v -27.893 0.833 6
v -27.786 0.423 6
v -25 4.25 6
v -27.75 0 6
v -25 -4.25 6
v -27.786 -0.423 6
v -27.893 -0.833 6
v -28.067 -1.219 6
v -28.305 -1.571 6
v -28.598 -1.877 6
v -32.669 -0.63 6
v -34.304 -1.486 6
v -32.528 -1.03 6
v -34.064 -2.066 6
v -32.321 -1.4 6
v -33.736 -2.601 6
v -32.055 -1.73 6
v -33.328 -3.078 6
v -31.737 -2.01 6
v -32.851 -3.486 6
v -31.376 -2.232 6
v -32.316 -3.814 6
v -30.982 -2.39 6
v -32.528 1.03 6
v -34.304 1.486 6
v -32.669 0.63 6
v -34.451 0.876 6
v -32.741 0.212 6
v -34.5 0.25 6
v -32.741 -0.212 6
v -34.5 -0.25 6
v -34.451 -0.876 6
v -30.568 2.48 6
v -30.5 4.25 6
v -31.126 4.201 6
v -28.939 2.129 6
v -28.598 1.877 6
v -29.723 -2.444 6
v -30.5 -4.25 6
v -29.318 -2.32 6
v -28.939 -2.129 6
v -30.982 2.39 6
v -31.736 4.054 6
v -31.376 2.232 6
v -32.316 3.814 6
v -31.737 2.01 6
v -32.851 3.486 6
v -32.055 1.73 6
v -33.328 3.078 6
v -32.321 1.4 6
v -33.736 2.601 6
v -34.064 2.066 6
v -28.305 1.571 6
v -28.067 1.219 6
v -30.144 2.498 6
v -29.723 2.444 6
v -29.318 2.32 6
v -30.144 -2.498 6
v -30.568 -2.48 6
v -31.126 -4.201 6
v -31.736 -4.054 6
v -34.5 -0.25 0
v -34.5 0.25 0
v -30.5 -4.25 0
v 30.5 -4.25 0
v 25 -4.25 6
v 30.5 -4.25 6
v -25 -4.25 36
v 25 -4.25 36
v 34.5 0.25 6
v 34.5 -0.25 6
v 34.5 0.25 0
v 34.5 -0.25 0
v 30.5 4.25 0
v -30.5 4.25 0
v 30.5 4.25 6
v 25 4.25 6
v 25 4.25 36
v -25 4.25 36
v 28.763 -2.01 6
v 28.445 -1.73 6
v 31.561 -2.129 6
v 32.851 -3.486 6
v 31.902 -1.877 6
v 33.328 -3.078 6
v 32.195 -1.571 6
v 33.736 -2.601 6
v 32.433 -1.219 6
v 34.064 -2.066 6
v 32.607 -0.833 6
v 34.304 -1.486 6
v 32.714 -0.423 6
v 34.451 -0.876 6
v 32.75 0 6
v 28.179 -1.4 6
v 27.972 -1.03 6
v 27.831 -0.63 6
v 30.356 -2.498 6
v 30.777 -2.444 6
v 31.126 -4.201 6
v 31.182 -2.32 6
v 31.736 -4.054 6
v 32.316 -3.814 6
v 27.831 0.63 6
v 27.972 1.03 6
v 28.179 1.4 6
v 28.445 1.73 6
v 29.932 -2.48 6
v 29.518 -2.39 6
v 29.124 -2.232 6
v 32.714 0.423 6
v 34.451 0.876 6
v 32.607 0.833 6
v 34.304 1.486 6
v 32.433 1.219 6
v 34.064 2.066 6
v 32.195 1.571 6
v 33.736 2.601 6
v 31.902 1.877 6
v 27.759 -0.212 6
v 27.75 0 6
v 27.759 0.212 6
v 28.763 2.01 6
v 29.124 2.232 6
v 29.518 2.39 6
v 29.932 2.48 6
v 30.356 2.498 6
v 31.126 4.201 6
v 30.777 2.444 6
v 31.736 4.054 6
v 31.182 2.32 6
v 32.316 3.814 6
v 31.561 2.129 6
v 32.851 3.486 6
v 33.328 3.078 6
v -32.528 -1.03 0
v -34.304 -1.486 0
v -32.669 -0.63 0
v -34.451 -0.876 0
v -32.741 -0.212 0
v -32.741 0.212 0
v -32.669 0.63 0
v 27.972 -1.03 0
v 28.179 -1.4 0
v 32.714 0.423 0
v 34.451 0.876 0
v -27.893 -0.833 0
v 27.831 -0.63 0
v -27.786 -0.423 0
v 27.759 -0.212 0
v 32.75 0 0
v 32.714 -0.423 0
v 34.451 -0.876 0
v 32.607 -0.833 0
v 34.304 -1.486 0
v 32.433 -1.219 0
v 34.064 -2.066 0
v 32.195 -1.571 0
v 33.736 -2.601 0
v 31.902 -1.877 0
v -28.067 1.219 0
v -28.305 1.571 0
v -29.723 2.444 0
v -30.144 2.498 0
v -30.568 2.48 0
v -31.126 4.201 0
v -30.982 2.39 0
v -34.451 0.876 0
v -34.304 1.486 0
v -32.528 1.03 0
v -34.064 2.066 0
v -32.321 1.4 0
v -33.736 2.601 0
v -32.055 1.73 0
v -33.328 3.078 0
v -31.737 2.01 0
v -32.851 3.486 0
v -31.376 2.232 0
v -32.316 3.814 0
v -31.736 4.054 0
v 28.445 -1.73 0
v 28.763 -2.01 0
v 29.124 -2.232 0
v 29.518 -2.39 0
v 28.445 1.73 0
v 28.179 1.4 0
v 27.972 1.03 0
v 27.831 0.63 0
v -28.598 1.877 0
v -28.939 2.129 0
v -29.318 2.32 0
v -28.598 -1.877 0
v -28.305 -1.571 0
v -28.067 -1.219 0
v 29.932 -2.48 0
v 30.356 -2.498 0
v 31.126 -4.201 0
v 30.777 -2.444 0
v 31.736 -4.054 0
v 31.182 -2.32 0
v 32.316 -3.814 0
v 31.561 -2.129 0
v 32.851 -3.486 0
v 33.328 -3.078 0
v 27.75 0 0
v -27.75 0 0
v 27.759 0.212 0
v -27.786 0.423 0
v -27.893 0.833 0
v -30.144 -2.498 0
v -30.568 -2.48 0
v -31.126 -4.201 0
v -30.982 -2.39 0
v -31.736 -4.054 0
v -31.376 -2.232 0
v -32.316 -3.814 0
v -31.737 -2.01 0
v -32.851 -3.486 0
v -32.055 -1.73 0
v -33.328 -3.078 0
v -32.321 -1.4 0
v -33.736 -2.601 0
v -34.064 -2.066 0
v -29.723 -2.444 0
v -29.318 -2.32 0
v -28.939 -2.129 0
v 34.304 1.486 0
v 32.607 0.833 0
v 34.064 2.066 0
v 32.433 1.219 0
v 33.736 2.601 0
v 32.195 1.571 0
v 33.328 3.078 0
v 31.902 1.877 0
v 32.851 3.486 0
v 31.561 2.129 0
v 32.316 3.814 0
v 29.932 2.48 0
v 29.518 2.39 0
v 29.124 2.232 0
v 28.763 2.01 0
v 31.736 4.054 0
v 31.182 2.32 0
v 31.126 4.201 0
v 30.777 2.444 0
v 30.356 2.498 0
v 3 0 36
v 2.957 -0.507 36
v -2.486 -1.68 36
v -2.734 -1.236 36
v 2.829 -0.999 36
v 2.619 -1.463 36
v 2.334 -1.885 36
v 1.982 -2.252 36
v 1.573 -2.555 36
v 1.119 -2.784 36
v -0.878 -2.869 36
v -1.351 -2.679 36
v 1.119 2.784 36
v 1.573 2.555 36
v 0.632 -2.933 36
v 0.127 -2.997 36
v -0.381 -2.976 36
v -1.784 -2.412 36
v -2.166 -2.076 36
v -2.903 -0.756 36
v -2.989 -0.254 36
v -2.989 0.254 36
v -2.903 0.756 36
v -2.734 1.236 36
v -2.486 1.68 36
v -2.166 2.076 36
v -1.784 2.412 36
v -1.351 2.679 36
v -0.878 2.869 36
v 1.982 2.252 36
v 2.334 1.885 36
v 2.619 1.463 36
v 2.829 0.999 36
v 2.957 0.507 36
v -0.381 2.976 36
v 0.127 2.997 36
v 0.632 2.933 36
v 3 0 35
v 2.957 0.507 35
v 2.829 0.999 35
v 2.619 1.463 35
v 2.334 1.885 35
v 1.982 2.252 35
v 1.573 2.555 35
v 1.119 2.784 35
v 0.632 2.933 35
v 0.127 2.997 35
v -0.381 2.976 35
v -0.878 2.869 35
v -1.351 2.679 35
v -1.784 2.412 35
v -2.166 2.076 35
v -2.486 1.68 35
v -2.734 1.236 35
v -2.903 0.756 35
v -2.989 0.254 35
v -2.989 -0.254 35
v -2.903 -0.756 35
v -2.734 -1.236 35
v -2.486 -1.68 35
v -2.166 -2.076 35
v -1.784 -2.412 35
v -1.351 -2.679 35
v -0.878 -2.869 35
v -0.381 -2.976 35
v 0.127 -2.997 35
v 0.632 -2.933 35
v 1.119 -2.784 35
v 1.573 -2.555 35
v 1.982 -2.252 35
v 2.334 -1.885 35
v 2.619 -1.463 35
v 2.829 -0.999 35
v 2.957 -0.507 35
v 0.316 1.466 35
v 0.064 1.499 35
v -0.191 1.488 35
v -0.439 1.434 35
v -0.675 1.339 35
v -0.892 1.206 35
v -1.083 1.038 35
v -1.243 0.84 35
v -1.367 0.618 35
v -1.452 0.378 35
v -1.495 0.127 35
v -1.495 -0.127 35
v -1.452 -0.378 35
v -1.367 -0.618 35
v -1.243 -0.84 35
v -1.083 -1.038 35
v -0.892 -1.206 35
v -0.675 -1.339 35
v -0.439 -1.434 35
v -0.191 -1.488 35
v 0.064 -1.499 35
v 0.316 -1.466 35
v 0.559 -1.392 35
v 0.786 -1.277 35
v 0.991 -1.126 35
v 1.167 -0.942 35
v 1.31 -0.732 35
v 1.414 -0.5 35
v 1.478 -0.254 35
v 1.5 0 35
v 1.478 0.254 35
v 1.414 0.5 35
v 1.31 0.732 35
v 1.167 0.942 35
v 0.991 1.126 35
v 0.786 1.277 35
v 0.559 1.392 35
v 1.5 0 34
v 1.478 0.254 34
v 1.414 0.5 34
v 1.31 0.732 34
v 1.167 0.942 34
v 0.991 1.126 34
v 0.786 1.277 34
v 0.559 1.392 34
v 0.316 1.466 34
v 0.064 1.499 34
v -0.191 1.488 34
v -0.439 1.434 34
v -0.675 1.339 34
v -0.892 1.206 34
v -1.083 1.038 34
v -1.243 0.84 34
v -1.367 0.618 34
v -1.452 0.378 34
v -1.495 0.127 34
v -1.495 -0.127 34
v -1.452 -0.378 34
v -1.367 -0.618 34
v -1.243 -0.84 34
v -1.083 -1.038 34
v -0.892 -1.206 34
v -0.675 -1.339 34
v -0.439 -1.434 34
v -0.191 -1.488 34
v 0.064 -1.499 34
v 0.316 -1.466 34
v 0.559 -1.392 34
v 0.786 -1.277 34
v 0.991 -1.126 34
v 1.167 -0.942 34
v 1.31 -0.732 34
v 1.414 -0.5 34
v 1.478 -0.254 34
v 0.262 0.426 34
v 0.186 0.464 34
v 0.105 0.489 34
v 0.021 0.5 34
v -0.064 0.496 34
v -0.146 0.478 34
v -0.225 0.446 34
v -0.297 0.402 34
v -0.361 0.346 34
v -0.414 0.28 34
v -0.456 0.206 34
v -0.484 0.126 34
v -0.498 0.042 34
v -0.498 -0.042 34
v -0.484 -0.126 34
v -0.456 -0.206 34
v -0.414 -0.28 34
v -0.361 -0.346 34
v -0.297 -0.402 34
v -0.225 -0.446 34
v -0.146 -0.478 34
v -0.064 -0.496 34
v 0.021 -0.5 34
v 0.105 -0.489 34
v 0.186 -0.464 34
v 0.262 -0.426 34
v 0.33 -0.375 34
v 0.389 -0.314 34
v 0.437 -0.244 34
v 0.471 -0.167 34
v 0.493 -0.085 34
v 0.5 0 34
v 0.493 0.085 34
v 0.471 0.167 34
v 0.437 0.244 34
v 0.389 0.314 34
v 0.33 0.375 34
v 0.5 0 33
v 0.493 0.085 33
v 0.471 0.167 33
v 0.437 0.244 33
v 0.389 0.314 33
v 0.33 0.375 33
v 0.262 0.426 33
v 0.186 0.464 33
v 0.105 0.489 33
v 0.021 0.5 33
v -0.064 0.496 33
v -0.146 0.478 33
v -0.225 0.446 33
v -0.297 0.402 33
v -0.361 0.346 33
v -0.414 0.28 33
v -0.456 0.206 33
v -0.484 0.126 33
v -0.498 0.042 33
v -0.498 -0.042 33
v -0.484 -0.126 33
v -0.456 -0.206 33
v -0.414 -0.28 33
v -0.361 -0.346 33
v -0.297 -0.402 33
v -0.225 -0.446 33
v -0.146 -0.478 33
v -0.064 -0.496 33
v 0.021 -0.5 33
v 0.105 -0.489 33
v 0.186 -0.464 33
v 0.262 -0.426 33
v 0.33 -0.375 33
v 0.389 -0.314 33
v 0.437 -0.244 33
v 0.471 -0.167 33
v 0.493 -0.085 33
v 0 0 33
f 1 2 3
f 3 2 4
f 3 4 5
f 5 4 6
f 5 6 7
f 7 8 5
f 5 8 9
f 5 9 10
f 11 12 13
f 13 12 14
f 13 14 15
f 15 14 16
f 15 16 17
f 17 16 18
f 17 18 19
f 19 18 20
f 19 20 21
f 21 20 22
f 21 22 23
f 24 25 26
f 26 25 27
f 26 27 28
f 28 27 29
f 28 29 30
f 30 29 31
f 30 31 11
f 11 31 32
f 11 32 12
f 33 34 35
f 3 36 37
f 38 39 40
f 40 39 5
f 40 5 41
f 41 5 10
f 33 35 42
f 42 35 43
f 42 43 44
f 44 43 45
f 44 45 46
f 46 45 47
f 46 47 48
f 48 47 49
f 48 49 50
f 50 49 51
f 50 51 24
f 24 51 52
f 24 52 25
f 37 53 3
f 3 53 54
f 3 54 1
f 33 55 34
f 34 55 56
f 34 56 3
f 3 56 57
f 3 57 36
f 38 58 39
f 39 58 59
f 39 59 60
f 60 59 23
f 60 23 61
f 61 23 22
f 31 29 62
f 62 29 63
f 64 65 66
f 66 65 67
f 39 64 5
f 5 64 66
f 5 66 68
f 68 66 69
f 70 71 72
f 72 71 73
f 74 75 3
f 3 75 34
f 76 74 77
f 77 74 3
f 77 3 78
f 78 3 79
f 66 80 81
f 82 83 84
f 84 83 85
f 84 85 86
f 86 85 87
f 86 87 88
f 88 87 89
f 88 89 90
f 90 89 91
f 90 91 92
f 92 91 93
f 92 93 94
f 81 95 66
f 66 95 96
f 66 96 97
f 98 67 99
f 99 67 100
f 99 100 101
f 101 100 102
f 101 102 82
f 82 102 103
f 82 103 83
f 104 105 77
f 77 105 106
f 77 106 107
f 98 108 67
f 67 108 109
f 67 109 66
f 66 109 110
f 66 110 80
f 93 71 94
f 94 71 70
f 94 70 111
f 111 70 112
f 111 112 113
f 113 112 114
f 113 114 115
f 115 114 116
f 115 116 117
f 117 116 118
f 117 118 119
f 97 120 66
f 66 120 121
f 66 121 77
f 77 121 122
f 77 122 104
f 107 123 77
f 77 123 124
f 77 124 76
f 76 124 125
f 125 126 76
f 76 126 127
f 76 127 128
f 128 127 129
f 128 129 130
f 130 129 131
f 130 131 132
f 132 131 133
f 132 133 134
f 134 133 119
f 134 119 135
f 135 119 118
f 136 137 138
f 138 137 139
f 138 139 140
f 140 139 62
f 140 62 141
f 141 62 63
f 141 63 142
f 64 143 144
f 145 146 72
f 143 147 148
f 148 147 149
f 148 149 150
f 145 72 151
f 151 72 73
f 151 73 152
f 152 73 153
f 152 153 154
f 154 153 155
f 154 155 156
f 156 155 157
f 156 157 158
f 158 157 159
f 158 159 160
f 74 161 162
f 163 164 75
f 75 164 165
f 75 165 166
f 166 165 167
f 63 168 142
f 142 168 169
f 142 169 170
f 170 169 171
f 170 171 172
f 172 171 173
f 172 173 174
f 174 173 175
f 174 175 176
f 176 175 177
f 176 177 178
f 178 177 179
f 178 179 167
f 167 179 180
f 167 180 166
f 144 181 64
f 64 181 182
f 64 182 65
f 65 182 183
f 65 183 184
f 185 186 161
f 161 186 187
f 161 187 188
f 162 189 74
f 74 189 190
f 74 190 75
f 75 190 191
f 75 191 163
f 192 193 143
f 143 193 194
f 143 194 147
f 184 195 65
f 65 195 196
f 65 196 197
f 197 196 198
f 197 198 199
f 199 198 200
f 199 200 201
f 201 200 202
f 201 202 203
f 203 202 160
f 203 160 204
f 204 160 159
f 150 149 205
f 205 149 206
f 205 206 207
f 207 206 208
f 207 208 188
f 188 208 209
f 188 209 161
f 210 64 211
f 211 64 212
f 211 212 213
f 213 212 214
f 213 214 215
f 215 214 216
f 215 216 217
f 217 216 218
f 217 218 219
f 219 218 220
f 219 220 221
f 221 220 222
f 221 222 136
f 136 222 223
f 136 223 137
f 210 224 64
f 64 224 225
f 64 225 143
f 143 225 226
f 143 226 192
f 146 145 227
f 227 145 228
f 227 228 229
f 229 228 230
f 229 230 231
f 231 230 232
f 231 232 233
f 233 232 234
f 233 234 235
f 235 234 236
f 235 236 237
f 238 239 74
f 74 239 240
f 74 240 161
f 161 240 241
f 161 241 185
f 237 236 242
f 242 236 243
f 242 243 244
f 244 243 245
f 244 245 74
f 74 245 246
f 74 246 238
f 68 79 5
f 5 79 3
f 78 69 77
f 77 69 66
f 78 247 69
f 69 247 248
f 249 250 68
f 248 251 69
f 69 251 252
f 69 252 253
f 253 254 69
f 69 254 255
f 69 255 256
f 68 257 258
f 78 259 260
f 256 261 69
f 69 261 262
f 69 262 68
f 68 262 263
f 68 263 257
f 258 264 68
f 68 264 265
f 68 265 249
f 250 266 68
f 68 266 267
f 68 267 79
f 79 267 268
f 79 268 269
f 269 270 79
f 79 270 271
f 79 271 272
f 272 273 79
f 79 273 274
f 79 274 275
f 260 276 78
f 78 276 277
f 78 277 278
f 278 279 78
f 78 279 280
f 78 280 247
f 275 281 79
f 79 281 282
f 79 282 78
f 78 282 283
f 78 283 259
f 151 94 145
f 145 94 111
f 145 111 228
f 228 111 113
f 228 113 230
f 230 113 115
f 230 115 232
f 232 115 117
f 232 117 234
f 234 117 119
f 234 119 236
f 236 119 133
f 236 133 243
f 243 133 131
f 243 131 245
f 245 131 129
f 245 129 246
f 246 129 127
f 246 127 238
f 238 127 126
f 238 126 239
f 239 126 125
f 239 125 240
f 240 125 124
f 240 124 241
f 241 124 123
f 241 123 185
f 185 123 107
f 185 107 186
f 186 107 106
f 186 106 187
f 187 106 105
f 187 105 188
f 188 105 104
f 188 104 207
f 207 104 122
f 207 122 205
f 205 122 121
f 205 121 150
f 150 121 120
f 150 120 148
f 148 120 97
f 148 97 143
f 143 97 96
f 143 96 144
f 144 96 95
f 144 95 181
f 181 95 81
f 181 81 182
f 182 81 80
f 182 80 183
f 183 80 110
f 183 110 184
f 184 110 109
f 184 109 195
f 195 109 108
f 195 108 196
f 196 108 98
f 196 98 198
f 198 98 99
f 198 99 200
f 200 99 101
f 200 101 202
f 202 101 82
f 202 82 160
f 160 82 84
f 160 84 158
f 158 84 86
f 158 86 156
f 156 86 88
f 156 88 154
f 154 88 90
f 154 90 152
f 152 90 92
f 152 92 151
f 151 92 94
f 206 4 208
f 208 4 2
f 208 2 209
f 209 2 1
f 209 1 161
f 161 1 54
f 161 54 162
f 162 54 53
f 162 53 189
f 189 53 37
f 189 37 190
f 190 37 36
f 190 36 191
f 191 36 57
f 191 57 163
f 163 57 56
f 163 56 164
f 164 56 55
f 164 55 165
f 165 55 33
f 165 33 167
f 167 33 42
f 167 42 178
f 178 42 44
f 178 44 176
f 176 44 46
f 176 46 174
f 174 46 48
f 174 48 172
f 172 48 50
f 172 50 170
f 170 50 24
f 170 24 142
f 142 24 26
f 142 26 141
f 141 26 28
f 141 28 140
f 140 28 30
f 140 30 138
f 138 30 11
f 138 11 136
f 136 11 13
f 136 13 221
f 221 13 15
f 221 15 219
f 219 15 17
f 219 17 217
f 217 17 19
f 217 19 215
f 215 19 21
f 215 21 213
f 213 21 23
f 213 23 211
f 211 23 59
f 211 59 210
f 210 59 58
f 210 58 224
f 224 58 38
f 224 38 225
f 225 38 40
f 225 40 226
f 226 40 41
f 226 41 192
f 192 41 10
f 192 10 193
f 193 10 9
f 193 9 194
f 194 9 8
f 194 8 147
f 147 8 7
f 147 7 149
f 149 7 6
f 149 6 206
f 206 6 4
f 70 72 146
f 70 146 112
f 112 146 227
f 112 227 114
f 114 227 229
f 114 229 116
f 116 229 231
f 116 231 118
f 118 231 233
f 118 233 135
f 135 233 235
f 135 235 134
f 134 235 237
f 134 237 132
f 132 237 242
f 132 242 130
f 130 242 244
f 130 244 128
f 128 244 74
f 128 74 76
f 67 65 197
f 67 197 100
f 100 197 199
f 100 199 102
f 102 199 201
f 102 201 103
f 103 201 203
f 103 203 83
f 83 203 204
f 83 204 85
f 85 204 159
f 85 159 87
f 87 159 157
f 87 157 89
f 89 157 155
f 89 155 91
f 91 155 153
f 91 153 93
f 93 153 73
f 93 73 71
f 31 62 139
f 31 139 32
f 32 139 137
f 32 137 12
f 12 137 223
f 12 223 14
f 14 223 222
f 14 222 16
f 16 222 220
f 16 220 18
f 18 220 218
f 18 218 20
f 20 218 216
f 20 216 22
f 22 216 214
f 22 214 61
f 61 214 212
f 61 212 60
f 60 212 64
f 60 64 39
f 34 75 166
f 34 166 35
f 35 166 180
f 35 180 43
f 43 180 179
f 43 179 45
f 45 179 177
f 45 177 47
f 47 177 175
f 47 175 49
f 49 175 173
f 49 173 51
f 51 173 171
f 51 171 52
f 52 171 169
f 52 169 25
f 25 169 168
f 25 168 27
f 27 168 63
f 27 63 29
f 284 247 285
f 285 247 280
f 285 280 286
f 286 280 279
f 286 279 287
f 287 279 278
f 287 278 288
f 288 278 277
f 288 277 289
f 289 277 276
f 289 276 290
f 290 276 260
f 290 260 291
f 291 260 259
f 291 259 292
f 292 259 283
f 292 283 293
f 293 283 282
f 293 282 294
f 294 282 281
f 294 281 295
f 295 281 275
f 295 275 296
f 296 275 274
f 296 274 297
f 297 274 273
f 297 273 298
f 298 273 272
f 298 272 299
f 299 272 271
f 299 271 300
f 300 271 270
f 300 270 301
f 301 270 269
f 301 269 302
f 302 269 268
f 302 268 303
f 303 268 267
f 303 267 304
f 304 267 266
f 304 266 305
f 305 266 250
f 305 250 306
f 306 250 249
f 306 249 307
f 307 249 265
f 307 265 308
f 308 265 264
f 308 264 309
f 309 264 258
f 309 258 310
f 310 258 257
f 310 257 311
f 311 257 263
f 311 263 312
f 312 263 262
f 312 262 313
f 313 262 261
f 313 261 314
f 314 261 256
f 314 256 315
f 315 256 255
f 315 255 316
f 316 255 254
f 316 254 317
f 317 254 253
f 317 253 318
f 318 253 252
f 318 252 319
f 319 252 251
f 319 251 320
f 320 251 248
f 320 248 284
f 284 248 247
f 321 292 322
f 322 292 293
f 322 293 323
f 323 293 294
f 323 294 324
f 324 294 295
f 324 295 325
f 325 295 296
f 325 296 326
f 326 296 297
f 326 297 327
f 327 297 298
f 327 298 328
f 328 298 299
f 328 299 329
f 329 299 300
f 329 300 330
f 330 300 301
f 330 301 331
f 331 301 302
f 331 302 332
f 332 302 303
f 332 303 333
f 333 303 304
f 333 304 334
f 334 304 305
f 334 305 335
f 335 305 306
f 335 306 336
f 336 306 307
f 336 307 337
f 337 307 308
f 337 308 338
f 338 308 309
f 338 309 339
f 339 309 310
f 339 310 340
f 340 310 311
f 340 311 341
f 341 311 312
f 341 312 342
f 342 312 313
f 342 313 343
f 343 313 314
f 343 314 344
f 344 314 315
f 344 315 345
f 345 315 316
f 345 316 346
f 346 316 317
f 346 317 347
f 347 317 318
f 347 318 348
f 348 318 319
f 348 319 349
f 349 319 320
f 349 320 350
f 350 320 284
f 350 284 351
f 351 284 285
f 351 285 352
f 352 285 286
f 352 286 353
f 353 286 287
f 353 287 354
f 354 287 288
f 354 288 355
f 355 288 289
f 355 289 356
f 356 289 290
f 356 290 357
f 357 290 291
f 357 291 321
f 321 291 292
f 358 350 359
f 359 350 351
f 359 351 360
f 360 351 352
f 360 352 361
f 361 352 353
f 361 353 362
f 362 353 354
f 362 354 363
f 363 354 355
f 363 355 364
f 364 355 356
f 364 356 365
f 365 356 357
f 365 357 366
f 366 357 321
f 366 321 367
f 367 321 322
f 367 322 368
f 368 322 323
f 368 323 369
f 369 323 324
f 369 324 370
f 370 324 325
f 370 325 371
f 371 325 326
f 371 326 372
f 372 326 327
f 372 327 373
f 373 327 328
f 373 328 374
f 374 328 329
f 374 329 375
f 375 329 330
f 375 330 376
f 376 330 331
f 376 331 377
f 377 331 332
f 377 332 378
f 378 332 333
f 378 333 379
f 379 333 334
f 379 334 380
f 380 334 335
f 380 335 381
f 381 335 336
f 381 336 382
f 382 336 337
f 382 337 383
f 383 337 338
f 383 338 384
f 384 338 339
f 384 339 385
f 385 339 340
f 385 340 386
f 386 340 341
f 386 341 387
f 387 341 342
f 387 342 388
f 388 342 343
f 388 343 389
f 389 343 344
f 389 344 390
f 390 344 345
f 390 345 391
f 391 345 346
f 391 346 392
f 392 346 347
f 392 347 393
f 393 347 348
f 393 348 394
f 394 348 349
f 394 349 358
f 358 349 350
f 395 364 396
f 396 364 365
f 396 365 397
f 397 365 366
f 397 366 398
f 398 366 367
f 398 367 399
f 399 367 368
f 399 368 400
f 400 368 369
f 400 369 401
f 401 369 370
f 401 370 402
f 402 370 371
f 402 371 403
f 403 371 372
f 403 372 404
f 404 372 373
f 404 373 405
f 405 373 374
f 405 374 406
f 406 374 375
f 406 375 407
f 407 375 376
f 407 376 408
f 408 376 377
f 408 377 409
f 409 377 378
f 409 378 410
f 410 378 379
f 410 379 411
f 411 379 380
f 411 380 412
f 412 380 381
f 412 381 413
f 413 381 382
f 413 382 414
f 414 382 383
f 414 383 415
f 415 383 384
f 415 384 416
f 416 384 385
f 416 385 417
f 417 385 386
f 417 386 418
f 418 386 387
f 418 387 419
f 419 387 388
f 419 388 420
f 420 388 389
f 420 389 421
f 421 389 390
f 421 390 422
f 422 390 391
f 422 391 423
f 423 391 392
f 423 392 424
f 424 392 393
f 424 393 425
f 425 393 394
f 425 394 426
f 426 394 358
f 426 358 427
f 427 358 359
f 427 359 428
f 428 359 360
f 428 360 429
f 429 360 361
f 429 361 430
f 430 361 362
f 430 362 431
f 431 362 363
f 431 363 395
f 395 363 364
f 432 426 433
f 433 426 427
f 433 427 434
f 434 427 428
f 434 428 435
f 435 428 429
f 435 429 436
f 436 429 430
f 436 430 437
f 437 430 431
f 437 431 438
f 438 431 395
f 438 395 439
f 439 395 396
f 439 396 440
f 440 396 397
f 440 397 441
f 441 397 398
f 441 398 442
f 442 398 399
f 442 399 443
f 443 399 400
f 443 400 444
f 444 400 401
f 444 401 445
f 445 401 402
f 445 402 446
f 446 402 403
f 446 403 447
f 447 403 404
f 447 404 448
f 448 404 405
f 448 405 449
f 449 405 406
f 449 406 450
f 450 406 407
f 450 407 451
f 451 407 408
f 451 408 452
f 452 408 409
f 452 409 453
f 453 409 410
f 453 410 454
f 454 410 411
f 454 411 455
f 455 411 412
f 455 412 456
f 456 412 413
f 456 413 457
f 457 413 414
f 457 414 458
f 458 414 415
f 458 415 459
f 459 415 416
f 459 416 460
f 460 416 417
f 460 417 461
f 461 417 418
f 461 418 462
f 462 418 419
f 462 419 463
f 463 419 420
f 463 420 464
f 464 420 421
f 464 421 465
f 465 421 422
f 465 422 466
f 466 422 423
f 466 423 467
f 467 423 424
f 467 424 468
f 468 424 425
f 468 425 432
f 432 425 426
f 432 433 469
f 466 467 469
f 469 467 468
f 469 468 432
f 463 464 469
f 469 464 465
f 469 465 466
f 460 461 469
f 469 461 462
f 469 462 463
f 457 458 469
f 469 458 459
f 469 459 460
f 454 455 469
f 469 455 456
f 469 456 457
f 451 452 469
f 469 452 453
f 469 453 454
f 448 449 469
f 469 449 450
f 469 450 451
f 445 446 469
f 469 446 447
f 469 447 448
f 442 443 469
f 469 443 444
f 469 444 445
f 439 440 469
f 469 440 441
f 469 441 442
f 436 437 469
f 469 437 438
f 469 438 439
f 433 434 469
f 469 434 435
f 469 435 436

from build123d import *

# Parameters (mm, degrees)
ESBO_O1_W                = 69
ESBO_O1_H                = 8.5
RESSALTO_EXTRUS_O1_DEPTH = 6
ESBO_O2_W                = 50
ESBO_O2_H                = 8.5
RESSALTO_EXTRUS_O2_DEPTH = 30
ESBO_O3_R                = 2.5
CORTE_EXTRUS_O1_DEPTH    = 7
FILETE1_R                = 4
ESBO_O4_R                = 3
CORTE_EXTRUS_O2_DEPTH    = 1
ESBO_O5_R                = 1.5
CORTE_EXTRUS_O3_DEPTH    = 1
ESBO_O6_R                = 0.5
CORTE_EXTRUS_O4_DEPTH    = 1


with BuildPart() as part:
    # Esboço1 → Ressalto-extrusão1 (new body)
    with BuildSketch(Plane.XY):
        Rectangle(ESBO_O1_W, ESBO_O1_H)
    extrude(amount=RESSALTO_EXTRUS_O1_DEPTH)

    # Esboço2 → Ressalto-extrusão2 (add)
    with BuildSketch(Plane.XY.offset(6)):
        Rectangle(ESBO_O2_W, ESBO_O2_H)
    extrude(amount=RESSALTO_EXTRUS_O2_DEPTH)

    # Esboço3 → Corte-extrusão1 (cut, through all)
    with BuildSketch(Plane.XY.offset(6)):
        with Locations((-30.25, 0)):
            Circle(ESBO_O3_R)
        with Locations((30.25, 0)):
            Circle(ESBO_O3_R)
    extrude(amount=-CORTE_EXTRUS_O1_DEPTH, mode=Mode.SUBTRACT)

    # Filete1
    filete1_edges = [part.edges().sort_by_distance(p)[0] for p in [
        (-34.5, 4.25, 3),
        (34.5, 4.25, 3),
        (34.5, -4.25, 3),
        (-34.5, -4.25, 3),
    ]]
    fillet(filete1_edges, radius=FILETE1_R)

    # Esboço4 → Corte-extrusão2 (cut)
    with BuildSketch(Plane.XY.offset(36)):
        Circle(ESBO_O4_R)
    extrude(amount=-CORTE_EXTRUS_O2_DEPTH, mode=Mode.SUBTRACT)

    # Esboço5 → Corte-extrusão3 (cut)
    with BuildSketch(Plane.XY.offset(35)):
        Circle(ESBO_O5_R)
    extrude(amount=-CORTE_EXTRUS_O3_DEPTH, mode=Mode.SUBTRACT)

    # Esboço6 → Corte-extrusão4 (cut)
    with BuildSketch(Plane.XY.offset(34)):
        Circle(ESBO_O6_R)
    extrude(amount=-CORTE_EXTRUS_O4_DEPTH, mode=Mode.SUBTRACT)


solid = part.part
